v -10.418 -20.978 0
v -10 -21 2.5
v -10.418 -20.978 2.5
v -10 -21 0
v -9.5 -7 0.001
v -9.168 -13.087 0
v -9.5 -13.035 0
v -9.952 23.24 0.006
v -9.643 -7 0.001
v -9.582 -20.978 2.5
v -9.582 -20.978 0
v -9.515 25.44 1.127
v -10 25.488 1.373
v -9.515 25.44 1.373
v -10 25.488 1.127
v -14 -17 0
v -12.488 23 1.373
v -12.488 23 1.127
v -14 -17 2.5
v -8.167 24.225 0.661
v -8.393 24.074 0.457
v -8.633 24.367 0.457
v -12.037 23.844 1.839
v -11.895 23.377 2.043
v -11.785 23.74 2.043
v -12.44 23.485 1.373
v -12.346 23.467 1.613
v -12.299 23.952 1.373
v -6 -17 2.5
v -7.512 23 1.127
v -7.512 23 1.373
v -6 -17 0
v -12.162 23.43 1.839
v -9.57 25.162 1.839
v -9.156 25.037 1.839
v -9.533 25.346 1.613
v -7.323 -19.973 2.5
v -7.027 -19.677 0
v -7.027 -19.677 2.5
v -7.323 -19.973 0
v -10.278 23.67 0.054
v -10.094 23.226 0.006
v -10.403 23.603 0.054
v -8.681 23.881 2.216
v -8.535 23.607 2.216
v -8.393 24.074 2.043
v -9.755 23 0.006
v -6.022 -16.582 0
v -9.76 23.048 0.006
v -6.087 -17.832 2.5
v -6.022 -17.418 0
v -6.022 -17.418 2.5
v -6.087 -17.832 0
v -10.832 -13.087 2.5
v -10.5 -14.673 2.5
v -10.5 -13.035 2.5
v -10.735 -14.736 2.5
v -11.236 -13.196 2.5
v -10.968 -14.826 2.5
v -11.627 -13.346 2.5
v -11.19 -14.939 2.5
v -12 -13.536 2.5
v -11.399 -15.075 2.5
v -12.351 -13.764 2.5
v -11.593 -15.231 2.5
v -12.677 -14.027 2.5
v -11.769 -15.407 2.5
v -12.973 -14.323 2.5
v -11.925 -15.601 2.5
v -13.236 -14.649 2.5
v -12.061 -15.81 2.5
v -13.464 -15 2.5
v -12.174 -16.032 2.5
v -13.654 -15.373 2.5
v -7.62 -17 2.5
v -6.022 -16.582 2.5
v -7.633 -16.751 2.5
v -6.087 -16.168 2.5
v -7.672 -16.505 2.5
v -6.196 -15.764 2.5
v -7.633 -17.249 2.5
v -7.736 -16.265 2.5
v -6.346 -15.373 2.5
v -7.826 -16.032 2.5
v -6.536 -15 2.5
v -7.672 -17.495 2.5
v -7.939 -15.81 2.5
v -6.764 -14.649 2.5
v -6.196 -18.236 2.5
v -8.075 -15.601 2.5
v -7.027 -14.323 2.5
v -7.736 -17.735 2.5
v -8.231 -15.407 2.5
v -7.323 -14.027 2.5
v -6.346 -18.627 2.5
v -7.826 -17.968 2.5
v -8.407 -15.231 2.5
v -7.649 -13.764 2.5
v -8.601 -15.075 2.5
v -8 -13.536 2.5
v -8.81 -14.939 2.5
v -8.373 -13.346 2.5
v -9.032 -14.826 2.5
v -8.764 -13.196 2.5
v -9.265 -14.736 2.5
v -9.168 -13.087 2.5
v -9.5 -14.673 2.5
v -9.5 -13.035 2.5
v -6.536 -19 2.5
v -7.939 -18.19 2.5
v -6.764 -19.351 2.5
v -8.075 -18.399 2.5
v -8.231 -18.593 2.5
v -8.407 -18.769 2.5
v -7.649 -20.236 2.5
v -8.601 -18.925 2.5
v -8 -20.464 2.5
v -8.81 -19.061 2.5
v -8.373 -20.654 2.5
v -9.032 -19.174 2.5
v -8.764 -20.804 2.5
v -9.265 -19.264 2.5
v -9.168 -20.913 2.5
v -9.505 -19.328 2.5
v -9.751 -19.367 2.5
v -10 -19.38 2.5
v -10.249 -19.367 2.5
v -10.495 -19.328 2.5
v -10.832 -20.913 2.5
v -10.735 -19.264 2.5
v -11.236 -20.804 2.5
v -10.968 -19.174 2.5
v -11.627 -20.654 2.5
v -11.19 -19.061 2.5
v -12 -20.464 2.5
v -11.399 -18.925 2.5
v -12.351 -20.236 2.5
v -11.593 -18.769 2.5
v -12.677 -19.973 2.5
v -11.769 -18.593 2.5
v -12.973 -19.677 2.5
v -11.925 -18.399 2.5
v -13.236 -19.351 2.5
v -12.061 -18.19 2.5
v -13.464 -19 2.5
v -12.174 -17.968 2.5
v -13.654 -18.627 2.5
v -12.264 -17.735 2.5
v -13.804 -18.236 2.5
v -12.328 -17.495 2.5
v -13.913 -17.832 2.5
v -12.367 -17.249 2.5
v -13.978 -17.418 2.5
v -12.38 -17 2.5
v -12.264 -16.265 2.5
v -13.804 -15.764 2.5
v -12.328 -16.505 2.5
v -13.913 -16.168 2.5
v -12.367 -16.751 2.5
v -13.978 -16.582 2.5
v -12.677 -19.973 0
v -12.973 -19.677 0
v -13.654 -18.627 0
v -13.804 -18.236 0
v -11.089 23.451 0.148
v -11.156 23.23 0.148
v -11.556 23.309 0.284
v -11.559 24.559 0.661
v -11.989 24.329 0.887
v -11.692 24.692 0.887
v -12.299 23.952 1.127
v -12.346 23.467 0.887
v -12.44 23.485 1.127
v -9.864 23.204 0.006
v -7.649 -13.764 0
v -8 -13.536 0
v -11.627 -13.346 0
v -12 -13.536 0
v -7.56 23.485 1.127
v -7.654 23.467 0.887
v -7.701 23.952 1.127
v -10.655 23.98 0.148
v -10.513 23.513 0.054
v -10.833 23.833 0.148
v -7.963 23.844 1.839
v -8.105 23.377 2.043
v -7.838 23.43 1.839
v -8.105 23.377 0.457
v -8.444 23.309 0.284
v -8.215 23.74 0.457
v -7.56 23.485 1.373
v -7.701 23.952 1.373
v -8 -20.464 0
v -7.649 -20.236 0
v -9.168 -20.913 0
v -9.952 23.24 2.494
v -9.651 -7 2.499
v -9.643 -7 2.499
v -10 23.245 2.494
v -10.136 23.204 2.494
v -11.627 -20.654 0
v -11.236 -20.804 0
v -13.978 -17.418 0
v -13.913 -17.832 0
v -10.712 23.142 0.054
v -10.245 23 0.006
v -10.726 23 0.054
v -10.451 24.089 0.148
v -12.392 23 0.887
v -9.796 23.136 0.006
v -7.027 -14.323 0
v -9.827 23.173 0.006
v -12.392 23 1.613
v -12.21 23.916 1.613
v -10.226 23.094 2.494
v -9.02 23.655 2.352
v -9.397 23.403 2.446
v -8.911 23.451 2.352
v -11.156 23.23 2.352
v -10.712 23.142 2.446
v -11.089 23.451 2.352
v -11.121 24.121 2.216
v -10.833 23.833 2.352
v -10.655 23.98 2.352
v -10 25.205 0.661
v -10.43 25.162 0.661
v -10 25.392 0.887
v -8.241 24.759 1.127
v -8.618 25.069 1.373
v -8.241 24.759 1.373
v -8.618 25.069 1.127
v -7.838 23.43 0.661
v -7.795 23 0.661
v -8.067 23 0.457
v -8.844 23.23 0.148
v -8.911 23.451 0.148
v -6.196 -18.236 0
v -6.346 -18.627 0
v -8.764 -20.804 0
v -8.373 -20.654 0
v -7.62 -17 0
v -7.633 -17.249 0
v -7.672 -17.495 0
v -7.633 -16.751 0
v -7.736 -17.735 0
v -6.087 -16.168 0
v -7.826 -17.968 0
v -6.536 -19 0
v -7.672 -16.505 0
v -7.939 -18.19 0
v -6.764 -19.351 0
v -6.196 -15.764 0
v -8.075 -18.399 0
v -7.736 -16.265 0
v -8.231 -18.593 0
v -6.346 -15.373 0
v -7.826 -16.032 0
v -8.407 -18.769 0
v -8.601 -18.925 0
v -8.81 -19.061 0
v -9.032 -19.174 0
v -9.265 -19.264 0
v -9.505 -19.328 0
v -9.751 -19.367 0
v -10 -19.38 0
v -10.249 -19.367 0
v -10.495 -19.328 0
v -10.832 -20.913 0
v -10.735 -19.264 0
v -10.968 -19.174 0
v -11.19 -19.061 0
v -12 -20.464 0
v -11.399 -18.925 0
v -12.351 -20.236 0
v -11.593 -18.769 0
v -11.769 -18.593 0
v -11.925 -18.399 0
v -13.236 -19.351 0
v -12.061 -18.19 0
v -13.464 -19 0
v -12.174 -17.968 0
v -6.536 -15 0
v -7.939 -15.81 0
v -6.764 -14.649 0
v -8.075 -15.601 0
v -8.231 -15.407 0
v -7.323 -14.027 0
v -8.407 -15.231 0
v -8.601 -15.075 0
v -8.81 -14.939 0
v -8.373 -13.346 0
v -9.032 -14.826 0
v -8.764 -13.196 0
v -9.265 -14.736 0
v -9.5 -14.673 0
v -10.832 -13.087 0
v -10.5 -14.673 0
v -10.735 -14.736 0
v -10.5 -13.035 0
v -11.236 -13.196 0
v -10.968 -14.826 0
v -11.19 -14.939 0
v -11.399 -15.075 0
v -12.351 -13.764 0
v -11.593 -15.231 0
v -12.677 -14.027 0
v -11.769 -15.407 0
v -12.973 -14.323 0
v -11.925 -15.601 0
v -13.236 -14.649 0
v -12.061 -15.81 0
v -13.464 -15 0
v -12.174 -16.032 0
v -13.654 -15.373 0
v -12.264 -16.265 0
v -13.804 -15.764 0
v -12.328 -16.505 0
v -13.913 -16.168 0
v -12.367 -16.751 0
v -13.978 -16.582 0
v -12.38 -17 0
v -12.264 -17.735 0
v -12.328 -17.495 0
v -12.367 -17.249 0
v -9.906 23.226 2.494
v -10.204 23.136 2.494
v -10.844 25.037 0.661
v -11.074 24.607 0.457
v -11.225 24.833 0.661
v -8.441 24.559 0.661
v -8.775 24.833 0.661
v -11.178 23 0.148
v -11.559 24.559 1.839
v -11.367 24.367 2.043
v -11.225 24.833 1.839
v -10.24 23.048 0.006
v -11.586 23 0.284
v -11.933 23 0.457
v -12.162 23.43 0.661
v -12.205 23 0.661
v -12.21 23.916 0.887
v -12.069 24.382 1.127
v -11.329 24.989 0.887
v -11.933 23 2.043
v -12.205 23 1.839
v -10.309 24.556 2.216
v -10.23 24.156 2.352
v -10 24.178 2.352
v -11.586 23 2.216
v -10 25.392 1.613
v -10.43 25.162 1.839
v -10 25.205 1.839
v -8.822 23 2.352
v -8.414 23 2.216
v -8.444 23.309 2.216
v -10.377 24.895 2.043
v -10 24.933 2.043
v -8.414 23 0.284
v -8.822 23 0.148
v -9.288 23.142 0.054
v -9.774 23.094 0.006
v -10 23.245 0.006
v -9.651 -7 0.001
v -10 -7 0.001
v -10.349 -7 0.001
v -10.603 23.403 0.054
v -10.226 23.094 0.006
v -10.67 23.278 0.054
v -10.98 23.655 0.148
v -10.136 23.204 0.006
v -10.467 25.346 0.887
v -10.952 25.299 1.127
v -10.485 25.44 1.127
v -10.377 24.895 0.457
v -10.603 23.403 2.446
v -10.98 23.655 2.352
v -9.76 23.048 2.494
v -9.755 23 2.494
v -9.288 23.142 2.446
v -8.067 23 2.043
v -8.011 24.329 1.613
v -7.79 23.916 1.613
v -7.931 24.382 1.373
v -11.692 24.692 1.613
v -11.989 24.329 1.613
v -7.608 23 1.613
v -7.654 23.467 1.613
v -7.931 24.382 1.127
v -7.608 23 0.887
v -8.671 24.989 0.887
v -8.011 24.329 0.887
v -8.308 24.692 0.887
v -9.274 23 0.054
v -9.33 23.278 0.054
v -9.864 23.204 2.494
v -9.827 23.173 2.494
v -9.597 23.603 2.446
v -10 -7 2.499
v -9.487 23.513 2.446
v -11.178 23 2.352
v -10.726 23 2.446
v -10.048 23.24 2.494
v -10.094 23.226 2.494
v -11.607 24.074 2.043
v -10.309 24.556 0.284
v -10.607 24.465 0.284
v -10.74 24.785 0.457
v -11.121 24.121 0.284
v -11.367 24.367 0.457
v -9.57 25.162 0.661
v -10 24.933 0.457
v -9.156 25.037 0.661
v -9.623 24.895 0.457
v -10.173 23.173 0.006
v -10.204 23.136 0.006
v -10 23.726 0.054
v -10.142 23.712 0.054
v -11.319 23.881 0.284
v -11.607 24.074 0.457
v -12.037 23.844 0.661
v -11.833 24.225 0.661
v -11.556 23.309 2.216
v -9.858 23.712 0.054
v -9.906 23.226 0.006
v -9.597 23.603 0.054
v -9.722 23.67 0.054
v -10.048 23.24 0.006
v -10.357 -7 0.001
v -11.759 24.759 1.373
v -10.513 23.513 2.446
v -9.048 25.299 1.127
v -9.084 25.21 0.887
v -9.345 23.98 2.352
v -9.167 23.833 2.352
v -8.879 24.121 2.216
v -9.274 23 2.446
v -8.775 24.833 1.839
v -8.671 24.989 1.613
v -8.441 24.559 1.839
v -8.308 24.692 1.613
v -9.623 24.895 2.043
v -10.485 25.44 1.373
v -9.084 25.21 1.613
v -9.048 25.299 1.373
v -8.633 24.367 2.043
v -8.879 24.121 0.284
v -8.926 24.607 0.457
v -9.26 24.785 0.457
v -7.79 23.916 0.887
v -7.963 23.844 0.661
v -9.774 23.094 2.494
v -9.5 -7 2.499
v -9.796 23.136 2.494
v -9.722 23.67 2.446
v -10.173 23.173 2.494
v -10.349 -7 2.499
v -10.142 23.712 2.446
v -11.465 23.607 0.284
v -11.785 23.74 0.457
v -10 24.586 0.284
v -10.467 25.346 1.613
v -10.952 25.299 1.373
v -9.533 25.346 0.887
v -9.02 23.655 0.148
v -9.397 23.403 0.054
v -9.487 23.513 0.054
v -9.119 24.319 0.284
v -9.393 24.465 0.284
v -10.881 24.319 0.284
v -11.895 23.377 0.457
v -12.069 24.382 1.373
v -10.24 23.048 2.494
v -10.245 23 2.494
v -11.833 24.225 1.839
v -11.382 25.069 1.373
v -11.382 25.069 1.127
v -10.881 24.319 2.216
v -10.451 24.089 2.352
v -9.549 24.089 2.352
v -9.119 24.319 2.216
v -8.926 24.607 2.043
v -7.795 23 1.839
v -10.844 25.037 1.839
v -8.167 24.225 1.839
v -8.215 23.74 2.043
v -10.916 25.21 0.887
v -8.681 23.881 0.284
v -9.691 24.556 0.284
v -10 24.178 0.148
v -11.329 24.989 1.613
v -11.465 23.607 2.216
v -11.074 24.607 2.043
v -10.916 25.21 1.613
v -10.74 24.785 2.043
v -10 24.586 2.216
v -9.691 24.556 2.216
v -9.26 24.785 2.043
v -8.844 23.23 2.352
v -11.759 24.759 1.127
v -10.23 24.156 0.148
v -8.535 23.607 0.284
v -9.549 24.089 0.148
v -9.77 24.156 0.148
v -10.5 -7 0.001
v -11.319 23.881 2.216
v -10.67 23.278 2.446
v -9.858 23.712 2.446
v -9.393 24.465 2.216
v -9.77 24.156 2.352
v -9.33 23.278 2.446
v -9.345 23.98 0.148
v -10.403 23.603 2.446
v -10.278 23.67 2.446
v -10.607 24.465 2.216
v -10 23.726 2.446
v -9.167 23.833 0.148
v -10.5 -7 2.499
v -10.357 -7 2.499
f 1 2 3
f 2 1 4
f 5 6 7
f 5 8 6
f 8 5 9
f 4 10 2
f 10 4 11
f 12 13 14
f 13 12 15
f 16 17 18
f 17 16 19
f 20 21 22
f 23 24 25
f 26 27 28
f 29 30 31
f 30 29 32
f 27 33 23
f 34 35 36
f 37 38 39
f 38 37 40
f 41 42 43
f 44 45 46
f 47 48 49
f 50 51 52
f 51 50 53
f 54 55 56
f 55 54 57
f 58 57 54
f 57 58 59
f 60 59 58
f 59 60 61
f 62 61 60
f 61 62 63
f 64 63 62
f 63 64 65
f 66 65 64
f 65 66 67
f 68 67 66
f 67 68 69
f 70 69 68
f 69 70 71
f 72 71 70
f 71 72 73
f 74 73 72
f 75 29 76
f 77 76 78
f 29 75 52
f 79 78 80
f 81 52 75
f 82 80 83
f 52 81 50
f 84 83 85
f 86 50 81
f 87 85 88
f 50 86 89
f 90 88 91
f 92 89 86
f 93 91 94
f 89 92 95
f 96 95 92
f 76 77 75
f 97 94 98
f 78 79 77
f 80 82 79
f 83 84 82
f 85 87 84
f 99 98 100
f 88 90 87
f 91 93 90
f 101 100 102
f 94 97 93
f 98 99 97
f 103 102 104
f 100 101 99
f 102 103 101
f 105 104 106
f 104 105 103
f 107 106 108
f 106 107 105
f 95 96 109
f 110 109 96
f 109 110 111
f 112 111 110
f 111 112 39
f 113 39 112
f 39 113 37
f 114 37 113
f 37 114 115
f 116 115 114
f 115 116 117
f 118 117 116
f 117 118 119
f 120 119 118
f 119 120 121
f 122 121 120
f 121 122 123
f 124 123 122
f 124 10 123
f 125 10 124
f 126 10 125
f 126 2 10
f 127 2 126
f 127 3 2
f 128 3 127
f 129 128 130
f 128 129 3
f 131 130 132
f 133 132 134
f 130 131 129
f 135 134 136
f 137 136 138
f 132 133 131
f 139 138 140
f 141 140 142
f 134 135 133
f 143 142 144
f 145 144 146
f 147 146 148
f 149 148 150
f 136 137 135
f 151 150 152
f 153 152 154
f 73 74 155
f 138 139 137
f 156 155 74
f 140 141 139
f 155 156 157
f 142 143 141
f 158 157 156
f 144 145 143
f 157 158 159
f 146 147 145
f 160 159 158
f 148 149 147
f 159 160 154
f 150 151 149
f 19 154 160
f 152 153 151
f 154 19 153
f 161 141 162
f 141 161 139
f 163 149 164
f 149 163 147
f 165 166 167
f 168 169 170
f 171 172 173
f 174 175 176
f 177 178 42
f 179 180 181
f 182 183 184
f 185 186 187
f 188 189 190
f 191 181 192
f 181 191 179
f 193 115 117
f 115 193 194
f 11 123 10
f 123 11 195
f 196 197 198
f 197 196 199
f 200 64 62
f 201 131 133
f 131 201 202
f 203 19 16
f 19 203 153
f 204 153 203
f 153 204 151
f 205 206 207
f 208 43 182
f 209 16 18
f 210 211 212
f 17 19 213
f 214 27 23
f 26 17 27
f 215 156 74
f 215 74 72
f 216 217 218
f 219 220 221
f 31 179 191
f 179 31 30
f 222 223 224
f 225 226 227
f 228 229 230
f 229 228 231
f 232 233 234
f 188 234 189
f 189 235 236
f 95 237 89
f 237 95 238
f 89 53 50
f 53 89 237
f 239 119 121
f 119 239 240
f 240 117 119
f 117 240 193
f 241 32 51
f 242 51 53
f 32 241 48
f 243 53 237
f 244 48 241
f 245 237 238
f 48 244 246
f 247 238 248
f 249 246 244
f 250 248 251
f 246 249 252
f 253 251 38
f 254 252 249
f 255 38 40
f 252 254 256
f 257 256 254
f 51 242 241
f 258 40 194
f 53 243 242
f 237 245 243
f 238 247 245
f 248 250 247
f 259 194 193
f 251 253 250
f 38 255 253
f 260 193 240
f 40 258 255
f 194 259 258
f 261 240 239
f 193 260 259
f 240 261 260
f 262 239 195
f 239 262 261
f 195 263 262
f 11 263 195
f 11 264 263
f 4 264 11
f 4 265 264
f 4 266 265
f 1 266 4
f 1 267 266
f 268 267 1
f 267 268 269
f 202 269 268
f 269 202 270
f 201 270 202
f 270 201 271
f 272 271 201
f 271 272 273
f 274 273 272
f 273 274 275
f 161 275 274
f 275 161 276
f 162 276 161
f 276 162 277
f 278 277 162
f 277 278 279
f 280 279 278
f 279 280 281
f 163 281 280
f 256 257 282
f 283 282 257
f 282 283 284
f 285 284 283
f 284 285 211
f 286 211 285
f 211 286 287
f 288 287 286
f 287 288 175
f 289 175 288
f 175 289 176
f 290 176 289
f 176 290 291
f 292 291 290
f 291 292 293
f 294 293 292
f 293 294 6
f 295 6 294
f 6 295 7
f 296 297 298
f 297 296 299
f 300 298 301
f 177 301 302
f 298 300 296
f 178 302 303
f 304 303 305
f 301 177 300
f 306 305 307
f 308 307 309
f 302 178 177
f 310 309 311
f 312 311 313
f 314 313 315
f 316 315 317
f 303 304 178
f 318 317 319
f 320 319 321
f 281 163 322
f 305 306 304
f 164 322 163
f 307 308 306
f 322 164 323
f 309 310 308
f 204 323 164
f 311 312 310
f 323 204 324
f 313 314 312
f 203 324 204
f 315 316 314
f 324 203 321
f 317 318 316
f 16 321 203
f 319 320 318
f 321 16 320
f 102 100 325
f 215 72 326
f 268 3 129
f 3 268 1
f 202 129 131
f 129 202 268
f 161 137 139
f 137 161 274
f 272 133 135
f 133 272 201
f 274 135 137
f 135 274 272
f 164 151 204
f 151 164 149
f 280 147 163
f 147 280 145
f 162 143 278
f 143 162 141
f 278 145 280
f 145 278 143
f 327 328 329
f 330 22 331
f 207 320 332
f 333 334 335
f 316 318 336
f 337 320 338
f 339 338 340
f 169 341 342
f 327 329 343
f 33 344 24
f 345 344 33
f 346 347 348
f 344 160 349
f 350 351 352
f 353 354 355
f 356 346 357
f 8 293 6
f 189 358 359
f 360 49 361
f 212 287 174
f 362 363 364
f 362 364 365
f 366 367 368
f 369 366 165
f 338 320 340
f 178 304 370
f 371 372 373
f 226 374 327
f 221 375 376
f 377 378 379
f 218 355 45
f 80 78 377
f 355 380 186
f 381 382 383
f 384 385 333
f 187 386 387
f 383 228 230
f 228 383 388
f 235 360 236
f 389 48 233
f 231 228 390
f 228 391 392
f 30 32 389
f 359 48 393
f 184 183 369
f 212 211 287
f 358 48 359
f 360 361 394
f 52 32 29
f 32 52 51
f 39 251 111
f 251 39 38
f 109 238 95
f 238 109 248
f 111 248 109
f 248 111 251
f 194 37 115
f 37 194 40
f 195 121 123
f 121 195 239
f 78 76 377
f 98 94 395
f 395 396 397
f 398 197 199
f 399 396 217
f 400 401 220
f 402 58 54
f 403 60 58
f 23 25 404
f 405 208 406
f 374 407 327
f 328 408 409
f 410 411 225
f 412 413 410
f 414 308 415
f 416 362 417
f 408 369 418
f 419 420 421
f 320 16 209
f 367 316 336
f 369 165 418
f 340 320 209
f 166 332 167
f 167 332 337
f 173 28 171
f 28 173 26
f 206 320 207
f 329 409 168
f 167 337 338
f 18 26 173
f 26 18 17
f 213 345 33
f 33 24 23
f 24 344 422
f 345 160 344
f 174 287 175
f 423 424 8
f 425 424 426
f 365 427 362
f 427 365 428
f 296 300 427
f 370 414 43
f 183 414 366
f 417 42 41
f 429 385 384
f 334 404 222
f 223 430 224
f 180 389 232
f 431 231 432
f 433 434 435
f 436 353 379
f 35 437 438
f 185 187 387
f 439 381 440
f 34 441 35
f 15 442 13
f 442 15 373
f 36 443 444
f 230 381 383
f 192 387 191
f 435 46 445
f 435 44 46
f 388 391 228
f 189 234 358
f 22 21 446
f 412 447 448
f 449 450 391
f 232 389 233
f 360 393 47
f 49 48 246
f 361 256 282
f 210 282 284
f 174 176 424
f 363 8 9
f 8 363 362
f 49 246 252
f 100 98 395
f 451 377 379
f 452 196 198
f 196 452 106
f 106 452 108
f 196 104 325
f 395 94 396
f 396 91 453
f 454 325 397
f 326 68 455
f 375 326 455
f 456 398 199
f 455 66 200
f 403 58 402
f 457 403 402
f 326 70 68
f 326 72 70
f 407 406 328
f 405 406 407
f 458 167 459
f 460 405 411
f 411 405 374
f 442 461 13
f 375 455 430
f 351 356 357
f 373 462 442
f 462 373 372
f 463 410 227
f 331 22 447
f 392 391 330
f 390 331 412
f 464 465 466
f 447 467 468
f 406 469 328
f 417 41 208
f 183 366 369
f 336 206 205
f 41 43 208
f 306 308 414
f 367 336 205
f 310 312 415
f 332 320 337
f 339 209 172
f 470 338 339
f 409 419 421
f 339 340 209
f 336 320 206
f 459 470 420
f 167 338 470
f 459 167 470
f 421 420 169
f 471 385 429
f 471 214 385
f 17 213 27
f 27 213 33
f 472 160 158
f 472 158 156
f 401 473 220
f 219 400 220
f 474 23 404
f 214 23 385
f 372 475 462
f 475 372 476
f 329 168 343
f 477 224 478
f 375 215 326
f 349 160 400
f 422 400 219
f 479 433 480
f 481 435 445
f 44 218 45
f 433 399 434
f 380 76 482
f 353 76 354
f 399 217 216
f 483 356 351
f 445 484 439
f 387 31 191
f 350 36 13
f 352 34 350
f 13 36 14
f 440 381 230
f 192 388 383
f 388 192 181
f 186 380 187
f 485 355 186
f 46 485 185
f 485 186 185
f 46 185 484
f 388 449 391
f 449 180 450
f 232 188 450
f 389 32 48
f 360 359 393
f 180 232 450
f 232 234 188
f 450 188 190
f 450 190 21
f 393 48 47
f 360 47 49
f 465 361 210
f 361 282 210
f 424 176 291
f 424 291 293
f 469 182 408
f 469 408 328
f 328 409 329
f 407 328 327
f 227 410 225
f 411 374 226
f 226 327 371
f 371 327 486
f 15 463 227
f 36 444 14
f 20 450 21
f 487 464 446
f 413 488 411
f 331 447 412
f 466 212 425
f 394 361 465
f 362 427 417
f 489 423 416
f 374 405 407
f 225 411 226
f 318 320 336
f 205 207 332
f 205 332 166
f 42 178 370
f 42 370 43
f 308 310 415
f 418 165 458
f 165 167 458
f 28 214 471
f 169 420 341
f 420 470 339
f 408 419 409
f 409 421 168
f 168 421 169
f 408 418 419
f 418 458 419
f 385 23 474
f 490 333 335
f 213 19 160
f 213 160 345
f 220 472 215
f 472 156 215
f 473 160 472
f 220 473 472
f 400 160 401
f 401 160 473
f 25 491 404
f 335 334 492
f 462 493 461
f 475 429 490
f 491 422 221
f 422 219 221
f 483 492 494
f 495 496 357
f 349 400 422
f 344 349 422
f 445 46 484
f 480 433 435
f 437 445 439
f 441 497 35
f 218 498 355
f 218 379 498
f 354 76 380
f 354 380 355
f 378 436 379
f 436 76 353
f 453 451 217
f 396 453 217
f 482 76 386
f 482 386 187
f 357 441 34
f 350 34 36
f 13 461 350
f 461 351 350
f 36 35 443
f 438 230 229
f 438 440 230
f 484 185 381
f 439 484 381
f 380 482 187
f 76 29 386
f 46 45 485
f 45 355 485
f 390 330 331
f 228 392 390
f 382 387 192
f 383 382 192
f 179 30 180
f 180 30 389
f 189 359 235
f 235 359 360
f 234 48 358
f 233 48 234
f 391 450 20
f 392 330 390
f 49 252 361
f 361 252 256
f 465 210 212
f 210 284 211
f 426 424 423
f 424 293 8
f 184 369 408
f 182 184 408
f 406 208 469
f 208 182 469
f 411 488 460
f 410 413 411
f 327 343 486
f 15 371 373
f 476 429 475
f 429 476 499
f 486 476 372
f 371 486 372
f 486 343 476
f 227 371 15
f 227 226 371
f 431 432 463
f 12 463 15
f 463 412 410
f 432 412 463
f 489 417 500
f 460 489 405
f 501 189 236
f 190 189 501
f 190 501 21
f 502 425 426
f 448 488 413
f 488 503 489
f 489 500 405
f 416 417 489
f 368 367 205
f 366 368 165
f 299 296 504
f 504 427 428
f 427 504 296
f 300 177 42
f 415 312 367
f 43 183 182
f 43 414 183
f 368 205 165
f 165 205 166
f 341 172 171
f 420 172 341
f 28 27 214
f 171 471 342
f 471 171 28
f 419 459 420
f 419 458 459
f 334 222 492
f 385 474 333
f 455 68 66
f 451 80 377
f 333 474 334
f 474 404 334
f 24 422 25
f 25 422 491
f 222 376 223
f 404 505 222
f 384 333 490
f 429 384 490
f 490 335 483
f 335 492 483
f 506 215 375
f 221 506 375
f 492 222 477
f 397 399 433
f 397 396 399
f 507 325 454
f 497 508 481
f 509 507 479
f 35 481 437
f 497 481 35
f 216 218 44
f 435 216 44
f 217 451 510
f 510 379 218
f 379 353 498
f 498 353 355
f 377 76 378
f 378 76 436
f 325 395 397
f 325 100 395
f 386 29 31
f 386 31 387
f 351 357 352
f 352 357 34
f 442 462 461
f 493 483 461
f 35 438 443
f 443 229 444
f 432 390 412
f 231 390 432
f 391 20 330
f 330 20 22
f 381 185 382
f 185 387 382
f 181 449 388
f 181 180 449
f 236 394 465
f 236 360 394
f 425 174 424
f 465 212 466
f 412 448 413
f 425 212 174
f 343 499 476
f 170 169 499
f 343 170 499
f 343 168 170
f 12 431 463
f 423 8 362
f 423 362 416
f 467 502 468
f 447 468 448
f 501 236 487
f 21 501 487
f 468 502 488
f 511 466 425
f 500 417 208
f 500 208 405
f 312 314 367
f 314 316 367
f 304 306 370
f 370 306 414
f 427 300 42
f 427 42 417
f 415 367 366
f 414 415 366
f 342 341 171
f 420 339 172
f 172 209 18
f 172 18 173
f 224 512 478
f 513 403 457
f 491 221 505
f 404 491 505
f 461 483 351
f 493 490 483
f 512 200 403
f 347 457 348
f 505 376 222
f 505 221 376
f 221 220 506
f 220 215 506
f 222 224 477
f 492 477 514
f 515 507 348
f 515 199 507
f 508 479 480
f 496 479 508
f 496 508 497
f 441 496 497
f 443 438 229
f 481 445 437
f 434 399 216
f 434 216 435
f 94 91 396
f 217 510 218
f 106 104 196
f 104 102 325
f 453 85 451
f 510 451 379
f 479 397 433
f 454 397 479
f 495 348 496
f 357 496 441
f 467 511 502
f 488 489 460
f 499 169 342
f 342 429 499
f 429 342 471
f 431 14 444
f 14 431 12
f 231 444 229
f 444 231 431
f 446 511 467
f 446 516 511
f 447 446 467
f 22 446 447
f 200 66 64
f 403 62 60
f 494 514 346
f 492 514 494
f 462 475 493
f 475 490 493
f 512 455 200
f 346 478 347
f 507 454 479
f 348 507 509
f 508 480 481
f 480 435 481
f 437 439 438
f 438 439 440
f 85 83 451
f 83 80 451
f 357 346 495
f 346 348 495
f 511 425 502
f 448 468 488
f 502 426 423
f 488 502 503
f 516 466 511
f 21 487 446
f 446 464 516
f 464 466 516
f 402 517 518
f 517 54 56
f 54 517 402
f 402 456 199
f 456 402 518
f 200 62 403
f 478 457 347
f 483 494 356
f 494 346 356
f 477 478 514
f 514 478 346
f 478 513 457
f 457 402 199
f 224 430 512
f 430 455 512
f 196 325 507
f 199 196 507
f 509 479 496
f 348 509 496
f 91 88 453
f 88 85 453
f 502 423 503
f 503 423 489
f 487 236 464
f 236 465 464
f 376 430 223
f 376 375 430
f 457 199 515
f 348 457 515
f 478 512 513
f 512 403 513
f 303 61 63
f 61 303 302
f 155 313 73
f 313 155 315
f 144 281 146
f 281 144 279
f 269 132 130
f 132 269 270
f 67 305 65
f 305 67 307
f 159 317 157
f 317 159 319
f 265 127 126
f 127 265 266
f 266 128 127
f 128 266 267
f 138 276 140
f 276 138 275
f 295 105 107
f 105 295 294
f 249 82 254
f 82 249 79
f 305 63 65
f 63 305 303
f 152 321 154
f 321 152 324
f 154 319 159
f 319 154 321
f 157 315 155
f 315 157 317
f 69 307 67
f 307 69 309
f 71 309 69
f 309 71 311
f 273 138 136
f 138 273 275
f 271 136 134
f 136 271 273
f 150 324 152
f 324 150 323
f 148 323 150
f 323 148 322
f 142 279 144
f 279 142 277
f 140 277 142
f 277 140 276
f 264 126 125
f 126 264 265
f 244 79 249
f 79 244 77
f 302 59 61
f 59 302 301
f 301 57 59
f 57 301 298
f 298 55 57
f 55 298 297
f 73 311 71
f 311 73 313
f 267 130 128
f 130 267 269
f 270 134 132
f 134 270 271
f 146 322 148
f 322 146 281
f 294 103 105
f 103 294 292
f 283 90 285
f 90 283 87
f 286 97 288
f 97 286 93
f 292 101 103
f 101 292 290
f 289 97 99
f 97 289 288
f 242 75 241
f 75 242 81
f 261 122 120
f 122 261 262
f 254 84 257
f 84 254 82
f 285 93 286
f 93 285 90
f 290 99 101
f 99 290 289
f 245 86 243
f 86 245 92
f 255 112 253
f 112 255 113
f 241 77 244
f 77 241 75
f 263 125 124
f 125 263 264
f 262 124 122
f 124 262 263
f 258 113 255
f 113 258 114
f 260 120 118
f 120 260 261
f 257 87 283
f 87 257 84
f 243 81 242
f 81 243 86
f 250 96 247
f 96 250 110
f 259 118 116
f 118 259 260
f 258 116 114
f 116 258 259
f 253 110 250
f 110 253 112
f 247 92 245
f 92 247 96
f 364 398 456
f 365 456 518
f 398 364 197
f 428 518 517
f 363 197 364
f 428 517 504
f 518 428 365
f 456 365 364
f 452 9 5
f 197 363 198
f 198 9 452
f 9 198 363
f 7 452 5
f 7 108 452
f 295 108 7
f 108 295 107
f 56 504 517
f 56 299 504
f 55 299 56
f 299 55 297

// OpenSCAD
$fs=.1;$fa=6;
module joiner(v=1,h=5){
	cube([7.8,2.2+(v-1)*12.1,1]);
	translate([3.4,1.1,1])cube([1,(v-1)*12.1,h]);
	for(i=[1:v])
	translate([1.1,1.1+(i-1)*12.1,1]){
		cylinder(d=2.2,h=h);
		translate([5.6,0,0])cylinder(d=2.2,h=h);
		translate([0,-.5,0])cube([5.6,1,h]);
	}
}
module band(v=1,t=1){
	t=t*2;
	translate([(22.5+t)/2,(12.1*v+t)/2,5])difference(){
		cube([22.5+t,12.1*v+t,10],center=true);
		cube([22.5,12.1*v,11],center=true);
	}
}
module leg()difference(){
	hull(){
		cylinder(d=8,h=2.5);
		translate([40,0,2.5/2])scale([5,5,2.5])sphere(d=1);
	}
	cylinder(d=4.76,h=6,center=true);
	translate([0,-.5,-.1])cube([10,1,3]);
}


v=1;
//for(i=[0:1])translate([30*i,5,0])band(v);
//for(i=[0:1])translate([10*i,-5,0])scale([1,-1,1])joiner(v);
for(i=[0:0])rotate(90)translate([-17,20*i+10,0])leg();
